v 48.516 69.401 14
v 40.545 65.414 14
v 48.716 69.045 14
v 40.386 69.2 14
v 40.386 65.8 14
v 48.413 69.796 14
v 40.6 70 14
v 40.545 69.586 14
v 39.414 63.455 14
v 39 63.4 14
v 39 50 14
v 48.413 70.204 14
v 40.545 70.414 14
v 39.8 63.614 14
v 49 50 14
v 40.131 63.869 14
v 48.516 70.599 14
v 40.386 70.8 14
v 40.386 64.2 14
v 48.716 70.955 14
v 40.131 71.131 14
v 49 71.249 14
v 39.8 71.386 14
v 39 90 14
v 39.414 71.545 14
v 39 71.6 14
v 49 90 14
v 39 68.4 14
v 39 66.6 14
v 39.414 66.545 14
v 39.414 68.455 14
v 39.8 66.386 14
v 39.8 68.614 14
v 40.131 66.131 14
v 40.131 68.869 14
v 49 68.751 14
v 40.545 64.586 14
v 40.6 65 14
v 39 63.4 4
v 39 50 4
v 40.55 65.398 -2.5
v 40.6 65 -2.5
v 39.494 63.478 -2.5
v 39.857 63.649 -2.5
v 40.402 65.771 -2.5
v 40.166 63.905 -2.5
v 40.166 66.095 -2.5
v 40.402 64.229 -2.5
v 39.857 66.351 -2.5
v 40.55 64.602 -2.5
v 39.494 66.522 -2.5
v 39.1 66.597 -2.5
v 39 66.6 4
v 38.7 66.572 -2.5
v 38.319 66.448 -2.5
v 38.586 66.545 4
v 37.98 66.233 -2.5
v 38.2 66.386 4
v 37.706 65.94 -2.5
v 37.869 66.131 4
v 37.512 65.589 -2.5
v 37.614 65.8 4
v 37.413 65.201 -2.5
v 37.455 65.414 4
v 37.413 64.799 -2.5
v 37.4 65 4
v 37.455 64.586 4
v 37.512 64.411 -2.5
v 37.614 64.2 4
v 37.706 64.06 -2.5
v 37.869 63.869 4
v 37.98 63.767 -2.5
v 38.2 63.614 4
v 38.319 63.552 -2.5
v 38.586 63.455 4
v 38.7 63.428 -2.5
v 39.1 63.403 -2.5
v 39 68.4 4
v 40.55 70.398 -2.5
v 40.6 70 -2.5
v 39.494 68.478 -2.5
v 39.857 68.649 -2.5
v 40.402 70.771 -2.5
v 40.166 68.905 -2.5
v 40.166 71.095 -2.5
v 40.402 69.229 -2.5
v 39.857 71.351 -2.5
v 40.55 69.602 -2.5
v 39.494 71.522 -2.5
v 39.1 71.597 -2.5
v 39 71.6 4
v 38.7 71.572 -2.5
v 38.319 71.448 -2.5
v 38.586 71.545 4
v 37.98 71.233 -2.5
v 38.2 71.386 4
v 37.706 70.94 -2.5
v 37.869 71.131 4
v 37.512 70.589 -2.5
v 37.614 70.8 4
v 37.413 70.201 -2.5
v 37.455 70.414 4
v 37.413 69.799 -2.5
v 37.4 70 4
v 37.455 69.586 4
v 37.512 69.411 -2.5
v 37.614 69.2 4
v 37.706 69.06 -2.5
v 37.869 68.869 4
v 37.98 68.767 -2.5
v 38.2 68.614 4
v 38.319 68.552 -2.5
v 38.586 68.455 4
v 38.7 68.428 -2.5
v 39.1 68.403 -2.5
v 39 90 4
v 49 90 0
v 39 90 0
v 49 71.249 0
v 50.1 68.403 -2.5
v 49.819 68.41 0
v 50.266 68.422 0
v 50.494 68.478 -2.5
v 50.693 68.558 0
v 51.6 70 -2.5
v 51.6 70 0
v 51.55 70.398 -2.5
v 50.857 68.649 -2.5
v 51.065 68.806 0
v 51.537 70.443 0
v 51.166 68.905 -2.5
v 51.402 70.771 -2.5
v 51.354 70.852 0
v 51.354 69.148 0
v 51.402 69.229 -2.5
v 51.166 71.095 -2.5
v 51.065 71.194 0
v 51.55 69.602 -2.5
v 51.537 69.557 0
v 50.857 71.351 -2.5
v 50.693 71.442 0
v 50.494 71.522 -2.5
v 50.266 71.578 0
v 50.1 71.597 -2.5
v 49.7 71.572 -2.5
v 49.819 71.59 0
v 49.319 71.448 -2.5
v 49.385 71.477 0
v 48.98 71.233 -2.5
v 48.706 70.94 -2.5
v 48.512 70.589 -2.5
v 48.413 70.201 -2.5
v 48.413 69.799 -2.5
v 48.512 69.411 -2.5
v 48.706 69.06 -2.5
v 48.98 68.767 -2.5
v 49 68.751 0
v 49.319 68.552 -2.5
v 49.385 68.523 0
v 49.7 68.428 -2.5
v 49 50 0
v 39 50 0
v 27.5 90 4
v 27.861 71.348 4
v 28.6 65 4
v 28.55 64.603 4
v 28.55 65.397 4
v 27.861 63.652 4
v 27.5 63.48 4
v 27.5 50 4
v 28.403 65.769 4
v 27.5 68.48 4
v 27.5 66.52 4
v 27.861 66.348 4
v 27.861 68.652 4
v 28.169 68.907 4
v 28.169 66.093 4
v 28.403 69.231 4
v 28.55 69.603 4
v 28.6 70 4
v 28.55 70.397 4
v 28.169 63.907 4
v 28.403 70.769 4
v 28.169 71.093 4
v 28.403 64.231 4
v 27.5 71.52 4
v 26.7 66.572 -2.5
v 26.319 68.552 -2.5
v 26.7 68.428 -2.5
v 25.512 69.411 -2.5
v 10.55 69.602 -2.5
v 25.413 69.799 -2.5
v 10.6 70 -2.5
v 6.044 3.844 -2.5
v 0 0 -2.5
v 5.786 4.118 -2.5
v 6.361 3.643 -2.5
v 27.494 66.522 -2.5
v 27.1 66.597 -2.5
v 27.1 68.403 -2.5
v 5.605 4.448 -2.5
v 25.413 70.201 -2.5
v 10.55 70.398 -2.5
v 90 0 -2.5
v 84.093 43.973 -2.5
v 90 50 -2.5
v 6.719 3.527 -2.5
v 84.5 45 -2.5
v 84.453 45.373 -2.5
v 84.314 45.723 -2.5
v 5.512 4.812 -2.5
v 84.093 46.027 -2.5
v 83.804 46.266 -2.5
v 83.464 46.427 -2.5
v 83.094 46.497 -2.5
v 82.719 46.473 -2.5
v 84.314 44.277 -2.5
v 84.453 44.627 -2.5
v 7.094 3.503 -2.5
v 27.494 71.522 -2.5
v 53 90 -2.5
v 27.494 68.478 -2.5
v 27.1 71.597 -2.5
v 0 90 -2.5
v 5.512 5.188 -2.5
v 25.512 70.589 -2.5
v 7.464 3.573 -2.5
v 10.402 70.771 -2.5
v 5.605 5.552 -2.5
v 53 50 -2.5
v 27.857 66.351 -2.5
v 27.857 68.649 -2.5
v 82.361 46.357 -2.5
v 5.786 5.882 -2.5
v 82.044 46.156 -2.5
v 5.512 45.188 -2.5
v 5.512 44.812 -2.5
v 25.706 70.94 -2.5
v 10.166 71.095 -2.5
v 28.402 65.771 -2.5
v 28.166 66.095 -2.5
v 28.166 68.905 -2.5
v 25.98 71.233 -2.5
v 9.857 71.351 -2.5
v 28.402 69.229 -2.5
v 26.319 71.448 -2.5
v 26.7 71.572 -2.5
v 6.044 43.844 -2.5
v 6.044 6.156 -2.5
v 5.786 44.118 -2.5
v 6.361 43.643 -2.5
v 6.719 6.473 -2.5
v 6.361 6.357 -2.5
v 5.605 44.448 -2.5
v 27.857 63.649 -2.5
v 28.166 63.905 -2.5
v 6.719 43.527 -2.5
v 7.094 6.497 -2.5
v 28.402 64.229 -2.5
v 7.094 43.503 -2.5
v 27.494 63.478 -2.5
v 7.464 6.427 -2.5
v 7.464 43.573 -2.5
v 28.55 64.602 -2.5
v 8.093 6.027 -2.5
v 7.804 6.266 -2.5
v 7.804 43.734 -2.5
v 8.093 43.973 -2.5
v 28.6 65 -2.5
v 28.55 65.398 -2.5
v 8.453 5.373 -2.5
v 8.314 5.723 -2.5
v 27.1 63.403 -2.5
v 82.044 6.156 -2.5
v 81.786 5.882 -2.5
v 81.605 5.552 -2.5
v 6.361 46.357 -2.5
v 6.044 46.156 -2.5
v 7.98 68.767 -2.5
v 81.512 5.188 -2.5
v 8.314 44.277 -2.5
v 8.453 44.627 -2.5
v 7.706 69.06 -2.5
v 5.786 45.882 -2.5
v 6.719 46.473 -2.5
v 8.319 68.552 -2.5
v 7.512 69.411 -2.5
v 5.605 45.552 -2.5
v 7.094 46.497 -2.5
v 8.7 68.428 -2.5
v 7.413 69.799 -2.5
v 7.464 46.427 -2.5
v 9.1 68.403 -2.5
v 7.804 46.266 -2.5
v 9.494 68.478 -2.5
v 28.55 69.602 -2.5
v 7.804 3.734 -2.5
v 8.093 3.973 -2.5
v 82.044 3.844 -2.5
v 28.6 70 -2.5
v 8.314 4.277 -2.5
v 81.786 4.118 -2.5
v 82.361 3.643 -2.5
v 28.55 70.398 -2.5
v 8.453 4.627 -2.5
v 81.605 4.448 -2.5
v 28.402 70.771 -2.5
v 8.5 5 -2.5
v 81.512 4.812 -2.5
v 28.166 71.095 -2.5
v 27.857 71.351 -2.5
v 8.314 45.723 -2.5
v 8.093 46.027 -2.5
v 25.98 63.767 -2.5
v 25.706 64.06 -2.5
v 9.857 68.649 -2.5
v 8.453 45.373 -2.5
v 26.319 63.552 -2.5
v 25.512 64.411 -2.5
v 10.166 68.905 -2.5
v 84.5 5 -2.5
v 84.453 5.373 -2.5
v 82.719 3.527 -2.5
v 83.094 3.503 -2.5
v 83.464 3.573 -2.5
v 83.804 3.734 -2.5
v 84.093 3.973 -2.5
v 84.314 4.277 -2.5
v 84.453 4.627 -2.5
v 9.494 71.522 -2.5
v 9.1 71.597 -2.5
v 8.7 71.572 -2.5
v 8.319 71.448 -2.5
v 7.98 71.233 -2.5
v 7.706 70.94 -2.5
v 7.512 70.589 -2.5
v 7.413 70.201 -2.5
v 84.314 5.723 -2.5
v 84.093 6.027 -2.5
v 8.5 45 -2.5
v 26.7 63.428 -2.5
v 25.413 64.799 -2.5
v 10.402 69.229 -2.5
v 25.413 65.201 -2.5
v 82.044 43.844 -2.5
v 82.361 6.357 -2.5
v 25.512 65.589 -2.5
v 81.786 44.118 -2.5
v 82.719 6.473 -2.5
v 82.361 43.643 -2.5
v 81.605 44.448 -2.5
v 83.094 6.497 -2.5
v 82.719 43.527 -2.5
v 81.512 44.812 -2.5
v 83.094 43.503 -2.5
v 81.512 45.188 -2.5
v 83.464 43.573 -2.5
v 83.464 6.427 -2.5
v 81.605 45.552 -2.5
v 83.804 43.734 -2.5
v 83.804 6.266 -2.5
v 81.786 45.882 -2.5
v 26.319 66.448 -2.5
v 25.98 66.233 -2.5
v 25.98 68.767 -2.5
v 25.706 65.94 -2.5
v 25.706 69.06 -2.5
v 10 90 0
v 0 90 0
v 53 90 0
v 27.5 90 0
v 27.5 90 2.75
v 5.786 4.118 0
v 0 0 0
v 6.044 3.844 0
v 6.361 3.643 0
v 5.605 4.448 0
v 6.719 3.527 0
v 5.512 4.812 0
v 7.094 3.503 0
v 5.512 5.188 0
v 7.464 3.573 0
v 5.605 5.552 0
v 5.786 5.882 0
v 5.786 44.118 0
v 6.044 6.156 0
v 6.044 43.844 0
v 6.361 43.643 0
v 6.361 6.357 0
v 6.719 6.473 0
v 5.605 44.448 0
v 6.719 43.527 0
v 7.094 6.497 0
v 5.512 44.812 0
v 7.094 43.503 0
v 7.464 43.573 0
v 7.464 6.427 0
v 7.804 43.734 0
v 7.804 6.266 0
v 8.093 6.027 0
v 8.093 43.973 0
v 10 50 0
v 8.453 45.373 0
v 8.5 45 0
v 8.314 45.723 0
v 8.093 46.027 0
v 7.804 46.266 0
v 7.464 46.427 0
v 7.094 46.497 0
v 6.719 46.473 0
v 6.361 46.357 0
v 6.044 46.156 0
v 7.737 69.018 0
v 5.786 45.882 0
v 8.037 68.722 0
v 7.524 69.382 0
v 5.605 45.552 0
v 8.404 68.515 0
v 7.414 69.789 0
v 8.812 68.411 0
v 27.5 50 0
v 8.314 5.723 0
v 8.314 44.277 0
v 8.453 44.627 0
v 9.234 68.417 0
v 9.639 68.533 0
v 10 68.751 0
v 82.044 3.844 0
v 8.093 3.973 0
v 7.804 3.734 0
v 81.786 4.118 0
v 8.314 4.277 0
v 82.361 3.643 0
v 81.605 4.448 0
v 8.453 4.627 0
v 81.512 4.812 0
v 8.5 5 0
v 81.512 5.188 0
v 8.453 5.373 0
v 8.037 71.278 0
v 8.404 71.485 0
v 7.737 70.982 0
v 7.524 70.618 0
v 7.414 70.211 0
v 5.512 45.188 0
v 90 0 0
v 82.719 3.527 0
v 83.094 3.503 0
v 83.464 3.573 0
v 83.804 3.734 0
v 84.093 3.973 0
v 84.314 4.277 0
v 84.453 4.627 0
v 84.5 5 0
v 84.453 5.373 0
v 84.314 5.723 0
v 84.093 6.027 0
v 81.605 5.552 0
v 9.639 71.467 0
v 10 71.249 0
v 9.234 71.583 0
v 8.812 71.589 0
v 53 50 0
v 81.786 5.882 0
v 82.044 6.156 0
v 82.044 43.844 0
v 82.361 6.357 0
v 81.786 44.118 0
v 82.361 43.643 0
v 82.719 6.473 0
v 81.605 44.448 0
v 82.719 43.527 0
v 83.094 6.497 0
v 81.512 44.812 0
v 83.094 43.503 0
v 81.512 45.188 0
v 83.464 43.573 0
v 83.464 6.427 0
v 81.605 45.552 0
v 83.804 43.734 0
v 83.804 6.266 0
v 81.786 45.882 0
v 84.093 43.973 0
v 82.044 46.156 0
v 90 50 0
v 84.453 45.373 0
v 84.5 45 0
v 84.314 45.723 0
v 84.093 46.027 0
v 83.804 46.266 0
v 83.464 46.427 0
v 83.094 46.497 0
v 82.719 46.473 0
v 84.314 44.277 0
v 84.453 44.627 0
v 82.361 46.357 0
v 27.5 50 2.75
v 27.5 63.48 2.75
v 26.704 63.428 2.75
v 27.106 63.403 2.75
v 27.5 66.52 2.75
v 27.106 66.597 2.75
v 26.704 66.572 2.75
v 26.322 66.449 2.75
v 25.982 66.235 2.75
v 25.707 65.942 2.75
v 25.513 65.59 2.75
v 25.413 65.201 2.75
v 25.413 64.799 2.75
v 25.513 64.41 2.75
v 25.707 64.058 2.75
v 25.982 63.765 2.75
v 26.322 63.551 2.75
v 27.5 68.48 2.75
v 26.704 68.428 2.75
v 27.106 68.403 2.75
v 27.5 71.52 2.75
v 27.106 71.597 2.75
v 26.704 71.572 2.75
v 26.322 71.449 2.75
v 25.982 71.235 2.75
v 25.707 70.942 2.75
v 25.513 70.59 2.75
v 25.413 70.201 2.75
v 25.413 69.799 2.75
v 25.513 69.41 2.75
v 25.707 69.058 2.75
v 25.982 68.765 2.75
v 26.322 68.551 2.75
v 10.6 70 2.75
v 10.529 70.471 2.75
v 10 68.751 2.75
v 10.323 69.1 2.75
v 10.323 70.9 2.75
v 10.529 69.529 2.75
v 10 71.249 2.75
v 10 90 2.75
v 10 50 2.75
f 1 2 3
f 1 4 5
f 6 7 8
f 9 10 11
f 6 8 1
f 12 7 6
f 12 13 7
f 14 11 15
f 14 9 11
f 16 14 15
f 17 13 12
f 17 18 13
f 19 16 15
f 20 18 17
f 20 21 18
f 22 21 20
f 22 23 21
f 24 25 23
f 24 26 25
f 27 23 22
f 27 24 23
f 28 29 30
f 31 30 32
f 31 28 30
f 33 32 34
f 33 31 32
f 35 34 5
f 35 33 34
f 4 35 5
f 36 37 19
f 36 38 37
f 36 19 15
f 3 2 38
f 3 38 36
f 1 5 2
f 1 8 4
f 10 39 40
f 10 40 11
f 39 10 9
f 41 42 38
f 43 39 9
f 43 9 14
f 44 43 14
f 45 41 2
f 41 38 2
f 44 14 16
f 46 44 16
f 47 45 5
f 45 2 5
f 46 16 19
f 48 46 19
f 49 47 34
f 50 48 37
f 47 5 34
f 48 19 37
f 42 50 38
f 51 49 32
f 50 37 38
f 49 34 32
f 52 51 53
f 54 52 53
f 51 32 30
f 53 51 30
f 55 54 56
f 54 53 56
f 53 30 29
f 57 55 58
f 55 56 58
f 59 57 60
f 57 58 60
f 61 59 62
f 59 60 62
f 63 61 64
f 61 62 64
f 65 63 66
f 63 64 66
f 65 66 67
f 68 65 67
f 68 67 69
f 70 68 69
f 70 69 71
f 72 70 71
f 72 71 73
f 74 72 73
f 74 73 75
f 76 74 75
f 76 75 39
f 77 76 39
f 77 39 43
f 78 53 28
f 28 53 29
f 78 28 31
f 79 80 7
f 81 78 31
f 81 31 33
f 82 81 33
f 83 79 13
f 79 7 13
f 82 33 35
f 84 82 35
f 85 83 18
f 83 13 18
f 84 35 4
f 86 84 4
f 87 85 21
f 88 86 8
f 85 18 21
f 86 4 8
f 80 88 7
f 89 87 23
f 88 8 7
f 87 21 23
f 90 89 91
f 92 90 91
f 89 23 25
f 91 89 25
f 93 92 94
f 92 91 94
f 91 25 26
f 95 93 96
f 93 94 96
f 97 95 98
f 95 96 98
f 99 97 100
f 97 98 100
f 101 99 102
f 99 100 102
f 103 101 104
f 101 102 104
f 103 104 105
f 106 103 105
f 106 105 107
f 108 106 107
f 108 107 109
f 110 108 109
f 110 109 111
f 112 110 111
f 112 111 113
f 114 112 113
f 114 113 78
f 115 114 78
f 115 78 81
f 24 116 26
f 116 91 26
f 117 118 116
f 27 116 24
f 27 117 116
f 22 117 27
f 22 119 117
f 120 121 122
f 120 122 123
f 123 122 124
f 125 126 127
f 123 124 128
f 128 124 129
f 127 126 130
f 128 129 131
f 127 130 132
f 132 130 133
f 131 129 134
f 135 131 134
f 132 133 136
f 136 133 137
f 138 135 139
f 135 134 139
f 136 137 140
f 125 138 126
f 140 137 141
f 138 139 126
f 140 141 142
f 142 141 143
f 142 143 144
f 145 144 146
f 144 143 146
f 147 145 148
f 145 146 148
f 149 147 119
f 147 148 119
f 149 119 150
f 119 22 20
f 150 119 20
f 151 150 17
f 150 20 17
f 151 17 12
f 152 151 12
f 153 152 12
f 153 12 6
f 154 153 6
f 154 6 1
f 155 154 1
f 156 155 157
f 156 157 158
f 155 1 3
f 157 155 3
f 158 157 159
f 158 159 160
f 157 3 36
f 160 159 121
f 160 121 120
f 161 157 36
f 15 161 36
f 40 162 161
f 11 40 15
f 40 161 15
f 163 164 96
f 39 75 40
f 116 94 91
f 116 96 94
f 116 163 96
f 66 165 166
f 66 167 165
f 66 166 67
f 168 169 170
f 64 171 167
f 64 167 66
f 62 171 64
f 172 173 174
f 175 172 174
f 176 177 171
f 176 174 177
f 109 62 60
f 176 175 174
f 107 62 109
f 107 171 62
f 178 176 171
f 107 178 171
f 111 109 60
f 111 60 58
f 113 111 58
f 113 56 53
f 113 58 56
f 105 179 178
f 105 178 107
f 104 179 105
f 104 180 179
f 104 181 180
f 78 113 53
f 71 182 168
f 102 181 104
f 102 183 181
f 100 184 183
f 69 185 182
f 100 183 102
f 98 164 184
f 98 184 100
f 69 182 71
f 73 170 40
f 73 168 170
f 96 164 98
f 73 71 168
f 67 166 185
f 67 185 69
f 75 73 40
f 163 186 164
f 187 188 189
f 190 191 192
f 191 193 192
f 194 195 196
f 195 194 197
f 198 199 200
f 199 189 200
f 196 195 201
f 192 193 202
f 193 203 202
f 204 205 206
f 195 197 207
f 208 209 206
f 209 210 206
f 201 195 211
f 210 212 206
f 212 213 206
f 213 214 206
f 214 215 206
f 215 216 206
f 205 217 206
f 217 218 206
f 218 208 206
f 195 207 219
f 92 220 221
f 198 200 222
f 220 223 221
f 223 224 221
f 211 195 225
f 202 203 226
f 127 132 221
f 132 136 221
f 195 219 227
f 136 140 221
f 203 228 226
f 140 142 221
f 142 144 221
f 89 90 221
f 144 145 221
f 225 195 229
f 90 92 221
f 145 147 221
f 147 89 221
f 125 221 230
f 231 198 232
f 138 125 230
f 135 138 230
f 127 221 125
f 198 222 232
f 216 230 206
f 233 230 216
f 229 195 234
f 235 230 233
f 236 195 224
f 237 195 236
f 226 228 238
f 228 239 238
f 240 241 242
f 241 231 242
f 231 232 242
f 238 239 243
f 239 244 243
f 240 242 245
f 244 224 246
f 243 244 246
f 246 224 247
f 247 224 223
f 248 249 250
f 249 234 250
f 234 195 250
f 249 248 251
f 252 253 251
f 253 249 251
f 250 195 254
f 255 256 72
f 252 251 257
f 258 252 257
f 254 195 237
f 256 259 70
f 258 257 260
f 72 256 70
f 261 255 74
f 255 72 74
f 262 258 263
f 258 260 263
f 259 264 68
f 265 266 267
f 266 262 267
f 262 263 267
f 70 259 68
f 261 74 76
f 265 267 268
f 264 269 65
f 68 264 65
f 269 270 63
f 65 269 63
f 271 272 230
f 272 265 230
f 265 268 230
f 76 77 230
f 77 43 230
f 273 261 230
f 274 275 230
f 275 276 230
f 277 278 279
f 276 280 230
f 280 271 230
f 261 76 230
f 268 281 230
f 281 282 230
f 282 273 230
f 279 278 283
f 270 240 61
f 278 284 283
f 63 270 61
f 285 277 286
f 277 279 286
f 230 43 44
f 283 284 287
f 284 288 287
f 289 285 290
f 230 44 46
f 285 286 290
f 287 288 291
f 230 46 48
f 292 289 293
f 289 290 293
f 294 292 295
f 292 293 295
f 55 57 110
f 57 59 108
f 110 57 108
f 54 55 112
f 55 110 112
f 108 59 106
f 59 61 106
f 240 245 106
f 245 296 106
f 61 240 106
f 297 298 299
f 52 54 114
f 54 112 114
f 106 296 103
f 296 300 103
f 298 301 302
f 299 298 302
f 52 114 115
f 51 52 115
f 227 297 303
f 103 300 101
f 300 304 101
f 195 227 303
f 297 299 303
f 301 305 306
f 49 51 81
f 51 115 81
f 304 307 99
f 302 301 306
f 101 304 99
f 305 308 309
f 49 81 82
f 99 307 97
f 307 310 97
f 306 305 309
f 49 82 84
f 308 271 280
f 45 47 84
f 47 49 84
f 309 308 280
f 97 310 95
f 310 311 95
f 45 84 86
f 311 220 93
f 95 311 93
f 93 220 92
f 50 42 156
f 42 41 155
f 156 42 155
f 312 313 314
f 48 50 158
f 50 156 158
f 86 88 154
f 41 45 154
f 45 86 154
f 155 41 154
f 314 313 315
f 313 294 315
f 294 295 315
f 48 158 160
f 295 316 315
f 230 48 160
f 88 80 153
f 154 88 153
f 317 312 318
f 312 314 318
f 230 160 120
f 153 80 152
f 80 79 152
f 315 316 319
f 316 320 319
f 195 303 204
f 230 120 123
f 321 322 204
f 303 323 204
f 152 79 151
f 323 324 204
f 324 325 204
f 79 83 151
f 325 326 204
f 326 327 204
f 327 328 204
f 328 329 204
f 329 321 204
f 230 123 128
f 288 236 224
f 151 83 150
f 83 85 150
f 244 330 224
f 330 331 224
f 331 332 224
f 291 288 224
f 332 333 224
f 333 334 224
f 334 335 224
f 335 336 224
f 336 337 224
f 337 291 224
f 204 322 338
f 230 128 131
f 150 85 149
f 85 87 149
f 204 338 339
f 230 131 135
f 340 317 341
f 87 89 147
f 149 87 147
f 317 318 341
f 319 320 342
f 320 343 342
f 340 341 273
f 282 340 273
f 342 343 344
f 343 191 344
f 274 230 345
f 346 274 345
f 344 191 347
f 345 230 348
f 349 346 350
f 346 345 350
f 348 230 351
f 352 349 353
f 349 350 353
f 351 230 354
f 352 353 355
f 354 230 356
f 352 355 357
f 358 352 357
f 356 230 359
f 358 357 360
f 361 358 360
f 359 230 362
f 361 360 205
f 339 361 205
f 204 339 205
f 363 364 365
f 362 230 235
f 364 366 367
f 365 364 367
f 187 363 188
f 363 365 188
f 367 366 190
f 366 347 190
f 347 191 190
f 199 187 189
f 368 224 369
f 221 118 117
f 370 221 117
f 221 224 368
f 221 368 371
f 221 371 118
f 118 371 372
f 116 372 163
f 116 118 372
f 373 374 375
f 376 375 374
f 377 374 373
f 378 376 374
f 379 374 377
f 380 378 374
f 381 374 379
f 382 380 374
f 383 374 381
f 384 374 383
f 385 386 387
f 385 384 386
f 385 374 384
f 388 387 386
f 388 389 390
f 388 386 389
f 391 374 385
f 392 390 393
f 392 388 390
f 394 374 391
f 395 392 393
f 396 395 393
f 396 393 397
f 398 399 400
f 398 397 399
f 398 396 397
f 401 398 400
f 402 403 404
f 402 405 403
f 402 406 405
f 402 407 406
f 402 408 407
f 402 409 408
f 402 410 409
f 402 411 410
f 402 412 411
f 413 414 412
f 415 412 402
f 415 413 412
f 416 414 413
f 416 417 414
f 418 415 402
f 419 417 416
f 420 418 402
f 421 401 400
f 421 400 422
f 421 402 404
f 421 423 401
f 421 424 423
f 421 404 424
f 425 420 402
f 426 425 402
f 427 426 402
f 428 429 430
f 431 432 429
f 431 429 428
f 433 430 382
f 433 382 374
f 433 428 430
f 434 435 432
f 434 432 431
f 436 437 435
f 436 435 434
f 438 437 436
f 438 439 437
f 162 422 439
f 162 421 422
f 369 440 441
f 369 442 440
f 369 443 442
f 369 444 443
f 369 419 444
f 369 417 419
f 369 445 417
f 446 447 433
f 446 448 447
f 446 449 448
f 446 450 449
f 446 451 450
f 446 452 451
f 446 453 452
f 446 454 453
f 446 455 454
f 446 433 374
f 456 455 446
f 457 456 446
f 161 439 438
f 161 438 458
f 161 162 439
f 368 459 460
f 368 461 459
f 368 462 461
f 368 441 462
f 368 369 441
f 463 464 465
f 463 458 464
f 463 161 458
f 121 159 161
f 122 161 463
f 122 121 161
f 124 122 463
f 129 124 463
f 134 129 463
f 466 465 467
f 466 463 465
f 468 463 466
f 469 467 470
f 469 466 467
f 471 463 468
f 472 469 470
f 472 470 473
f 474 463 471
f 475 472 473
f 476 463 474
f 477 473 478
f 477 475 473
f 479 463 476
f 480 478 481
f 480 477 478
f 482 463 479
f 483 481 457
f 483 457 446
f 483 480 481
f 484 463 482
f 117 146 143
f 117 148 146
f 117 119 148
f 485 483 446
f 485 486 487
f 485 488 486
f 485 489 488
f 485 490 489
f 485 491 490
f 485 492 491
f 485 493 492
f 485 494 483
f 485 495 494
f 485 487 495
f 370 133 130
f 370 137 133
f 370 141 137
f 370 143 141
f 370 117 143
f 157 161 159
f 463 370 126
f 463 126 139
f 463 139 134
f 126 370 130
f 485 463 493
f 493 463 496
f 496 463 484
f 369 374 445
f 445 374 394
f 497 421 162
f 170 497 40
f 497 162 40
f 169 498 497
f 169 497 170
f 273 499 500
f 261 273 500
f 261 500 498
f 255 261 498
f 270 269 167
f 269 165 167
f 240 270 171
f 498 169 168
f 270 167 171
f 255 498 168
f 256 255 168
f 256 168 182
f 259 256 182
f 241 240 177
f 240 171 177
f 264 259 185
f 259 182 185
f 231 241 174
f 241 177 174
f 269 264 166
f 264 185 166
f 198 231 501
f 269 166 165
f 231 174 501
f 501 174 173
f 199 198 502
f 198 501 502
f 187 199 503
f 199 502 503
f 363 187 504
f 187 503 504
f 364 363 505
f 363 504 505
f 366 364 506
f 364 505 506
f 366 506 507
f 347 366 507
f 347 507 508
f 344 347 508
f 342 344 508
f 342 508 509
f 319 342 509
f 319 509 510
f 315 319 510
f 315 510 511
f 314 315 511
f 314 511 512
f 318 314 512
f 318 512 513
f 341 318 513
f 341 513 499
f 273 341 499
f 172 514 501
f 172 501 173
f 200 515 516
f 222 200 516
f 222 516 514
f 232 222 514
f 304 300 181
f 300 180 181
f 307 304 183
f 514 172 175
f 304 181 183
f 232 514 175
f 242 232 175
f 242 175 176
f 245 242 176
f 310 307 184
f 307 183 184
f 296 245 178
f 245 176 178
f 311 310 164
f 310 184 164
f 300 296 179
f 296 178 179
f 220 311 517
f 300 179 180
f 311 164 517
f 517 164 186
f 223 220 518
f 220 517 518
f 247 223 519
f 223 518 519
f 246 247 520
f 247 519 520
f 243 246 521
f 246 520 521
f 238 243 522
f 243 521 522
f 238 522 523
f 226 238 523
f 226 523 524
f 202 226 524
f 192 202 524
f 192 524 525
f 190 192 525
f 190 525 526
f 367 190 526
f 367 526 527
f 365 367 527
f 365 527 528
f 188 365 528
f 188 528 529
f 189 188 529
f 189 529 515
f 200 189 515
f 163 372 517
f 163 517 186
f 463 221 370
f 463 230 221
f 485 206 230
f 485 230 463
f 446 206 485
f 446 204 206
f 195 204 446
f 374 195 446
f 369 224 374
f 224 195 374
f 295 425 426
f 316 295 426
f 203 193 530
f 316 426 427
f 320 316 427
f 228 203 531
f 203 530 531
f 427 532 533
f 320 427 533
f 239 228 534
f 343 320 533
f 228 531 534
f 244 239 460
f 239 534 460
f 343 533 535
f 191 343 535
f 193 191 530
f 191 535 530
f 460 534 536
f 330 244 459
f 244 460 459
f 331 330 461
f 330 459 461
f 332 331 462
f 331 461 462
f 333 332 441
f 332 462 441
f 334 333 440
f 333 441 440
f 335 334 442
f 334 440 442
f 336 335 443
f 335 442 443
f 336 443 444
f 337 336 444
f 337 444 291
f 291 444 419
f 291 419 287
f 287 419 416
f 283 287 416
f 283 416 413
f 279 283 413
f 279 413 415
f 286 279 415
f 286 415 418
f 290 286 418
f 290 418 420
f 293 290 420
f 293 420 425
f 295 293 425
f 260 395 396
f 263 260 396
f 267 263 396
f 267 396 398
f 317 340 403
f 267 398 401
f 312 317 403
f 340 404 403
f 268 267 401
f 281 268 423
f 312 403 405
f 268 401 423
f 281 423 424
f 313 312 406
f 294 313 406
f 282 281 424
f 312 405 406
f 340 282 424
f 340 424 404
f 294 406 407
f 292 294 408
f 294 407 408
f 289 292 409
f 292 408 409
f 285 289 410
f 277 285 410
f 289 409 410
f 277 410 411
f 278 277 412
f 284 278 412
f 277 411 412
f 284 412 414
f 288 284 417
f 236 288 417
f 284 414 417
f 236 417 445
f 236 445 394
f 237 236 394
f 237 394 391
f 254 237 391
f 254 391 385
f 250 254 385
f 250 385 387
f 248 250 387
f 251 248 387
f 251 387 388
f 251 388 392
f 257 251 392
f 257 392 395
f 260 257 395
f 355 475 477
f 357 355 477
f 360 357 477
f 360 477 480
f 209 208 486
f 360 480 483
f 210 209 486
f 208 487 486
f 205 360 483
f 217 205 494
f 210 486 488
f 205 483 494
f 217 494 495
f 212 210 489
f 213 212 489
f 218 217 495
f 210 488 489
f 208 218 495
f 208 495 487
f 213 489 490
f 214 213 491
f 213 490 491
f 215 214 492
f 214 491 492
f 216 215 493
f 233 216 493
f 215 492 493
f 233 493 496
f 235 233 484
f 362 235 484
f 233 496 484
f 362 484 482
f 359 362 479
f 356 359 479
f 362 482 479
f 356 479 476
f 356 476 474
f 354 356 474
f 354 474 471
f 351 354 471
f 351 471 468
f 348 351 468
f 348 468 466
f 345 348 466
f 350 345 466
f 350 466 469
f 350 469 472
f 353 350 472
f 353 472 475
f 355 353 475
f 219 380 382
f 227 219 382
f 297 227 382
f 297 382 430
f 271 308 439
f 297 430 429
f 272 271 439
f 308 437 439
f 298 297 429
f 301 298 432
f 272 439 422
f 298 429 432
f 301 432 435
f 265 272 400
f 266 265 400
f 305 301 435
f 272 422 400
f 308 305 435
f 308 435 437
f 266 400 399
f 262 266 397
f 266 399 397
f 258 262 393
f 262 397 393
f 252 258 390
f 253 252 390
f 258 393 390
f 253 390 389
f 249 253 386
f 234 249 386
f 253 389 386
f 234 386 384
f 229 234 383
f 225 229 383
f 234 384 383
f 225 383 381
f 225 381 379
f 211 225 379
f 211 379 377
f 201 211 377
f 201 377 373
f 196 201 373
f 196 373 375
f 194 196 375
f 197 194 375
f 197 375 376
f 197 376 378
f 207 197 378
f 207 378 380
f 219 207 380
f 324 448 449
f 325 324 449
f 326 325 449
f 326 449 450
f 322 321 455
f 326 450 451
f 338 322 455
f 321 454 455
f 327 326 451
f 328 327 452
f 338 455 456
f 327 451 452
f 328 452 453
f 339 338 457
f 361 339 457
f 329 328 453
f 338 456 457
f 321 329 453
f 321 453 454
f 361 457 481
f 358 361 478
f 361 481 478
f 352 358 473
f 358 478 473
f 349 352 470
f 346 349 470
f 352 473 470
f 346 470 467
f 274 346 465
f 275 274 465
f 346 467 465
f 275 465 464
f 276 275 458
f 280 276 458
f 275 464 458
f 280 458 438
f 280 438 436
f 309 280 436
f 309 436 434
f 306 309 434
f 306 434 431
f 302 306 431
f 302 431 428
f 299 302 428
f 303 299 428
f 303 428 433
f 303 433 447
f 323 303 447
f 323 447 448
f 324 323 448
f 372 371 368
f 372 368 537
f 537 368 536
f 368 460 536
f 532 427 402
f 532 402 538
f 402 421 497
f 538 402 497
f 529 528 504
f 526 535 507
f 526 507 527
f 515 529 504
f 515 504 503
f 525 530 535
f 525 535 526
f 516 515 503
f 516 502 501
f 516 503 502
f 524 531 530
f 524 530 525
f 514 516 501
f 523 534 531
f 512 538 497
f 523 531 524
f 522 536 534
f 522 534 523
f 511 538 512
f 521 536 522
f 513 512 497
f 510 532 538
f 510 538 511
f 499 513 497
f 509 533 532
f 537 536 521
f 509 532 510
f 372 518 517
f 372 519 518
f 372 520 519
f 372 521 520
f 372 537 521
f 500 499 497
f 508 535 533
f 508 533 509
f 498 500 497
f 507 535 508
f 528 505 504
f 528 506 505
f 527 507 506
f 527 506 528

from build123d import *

# Parameters (mm, degrees)
BOX004_W          = 40
BOX004_H          = 40
BOX004_DEPTH      = 10
CYLINDER009_R     = 1.6
CYLINDER009_DEPTH = 20
CYLINDER008_R     = 1.6
CYLINDER008_DEPTH = 20
CYLINDER007_R     = 1.6
CYLINDER007_DEPTH = 20
CYLINDER006_R     = 1.6
CYLINDER006_DEPTH = 10
CYLINDER005_R     = 1.6
CYLINDER005_DEPTH = 10
CYLINDER004_R     = 1.6
CYLINDER004_DEPTH = 10
BOX003_W          = 10
BOX003_H          = 40
BOX003_DEPTH      = 14
BOX002_W          = 11.5
BOX002_H          = 40
BOX002_DEPTH      = 4
BOX001_W          = 17.5
BOX001_H          = 40
BOX001_DEPTH      = 2.75
CYLINDER003_R     = 1.5
CYLINDER003_DEPTH = 10
CYLINDER002_R     = 1.5
CYLINDER002_DEPTH = 10
CYLINDER001_R     = 1.5
CYLINDER001_DEPTH = 10
CYLINDER_R        = 1.5
CYLINDER_DEPTH    = 10
BOX_W             = 90
BOX_H             = 90
BOX_DEPTH         = 2.5


with BuildPart() as cube004:
    # Box004 → Box004 (new body)
    with BuildSketch(Plane(origin=(53, 50, -5), x_dir=(1, 0, 0), z_dir=(0, 0, 1))):
        with Locations((20, 20)):
            Rectangle(BOX004_W, BOX004_H)
    extrude(amount=BOX004_DEPTH)


with BuildPart() as cylinder009:
    # Cylinder009 → Cylinder009 (new body)
    with BuildSketch(Plane(origin=(50, 70, -5), x_dir=(1, 0, 0), z_dir=(0, 0, 1))):
        Circle(CYLINDER009_R)
    extrude(amount=CYLINDER009_DEPTH)


with BuildPart() as cylinder008:
    # Cylinder008 → Cylinder008 (new body)
    with BuildSketch(Plane(origin=(39, 70, -5), x_dir=(1, 0, 0), z_dir=(0, 0, 1))):
        Circle(CYLINDER008_R)
    extrude(amount=CYLINDER008_DEPTH)


with BuildPart() as cylinder007:
    # Cylinder007 → Cylinder007 (new body)
    with BuildSketch(Plane(origin=(39, 65, -5), x_dir=(1, 0, 0), z_dir=(0, 0, 1))):
        Circle(CYLINDER007_R)
    extrude(amount=CYLINDER007_DEPTH)


with BuildPart() as cylinder006:
    # Cylinder006 → Cylinder006 (new body)
    with BuildSketch(Plane(origin=(27, 65, -5), x_dir=(1, 0, 0), z_dir=(0, 0, 1))):
        Circle(CYLINDER006_R)
    extrude(amount=CYLINDER006_DEPTH)


with BuildPart() as cylinder005:
    # Cylinder005 → Cylinder005 (new body)
    with BuildSketch(Plane(origin=(27, 70, -5), x_dir=(1, 0, 0), z_dir=(0, 0, 1))):
        Circle(CYLINDER005_R)
    extrude(amount=CYLINDER005_DEPTH)


with BuildPart() as cylinder004:
    # Cylinder004 → Cylinder004 (new body)
    with BuildSketch(Plane(origin=(9, 70, -5), x_dir=(1, 0, 0), z_dir=(0, 0, 1))):
        Circle(CYLINDER004_R)
    extrude(amount=CYLINDER004_DEPTH)


with BuildPart() as cube003:
    # Box003 → Box003 (new body)
    with BuildSketch(Plane(origin=(39, 50, 0), x_dir=(1, 0, 0), z_dir=(0, 0, 1))):
        with Locations((5, 20)):
            Rectangle(BOX003_W, BOX003_H)
    extrude(amount=BOX003_DEPTH)


with BuildPart() as cube002:
    # Box002 → Box002 (new body)
    with BuildSketch(Plane(origin=(27.5, 50, 0), x_dir=(1, 0, 0), z_dir=(0, 0, 1))):
        with Locations((5.75, 20)):
            Rectangle(BOX002_W, BOX002_H)
    extrude(amount=BOX002_DEPTH)


with BuildPart() as cube001:
    # Box001 → Box001 (new body)
    with BuildSketch(Plane(origin=(10, 50, 0), x_dir=(1, 0, 0), z_dir=(0, 0, 1))):
        with Locations((8.75, 20)):
            Rectangle(BOX001_W, BOX001_H)
    extrude(amount=BOX001_DEPTH)


with BuildPart() as cylinder003:
    # Cylinder003 → Cylinder003 (new body)
    with BuildSketch(Plane(origin=(83, 45, -5), x_dir=(1, 0, 0), z_dir=(0, 0, 1))):
        Circle(CYLINDER003_R)
    extrude(amount=CYLINDER003_DEPTH)


with BuildPart() as cylinder002:
    # Cylinder002 → Cylinder002 (new body)
    with BuildSketch(Plane(origin=(83, 5, -5), x_dir=(1, 0, 0), z_dir=(0, 0, 1))):
        Circle(CYLINDER002_R)
    extrude(amount=CYLINDER002_DEPTH)


with BuildPart() as cylinder001:
    # Cylinder001 → Cylinder001 (new body)
    with BuildSketch(Plane(origin=(7, 45, -5), x_dir=(1, 0, 0), z_dir=(0, 0, 1))):
        Circle(CYLINDER001_R)
    extrude(amount=CYLINDER001_DEPTH)


with BuildPart() as cylinder:
    # Cylinder → Cylinder (new body)
    with BuildSketch(Plane(origin=(7, 5, -5), x_dir=(1, 0, 0), z_dir=(0, 0, 1))):
        Circle(CYLINDER_R)
    extrude(amount=CYLINDER_DEPTH)


with BuildPart() as cut010:
    # Box → Box (new body)
    with BuildSketch(Plane.XY.offset(-2.5)):
        with Locations((45, 45)):
            Rectangle(BOX_W, BOX_H)
    extrude(amount=BOX_DEPTH)

    # Cut: cut Cylinder
    add(cylinder.part, mode=Mode.SUBTRACT)

    # Cut001: cut Cylinder001
    add(cylinder001.part, mode=Mode.SUBTRACT)

    # Cut002: cut Cylinder002
    add(cylinder002.part, mode=Mode.SUBTRACT)

    # Cut003: cut Cylinder003
    add(cylinder003.part, mode=Mode.SUBTRACT)

    # Fusion: union Cube001
    add(cube001.part)

    # Fusion001: union Cube002
    add(cube002.part)

    # Fusion002: union Cube003
    add(cube003.part)

    # Cut004: cut Cylinder004
    add(cylinder004.part, mode=Mode.SUBTRACT)

    # Cut005: cut Cylinder005
    add(cylinder005.part, mode=Mode.SUBTRACT)

    # Cut006: cut Cylinder006
    add(cylinder006.part, mode=Mode.SUBTRACT)

    # Cut007: cut Cylinder007
    add(cylinder007.part, mode=Mode.SUBTRACT)

    # Cut008: cut Cylinder008
    add(cylinder008.part, mode=Mode.SUBTRACT)

    # Cut009: cut Cylinder009
    add(cylinder009.part, mode=Mode.SUBTRACT)

    # Cut010: cut Cube004
    add(cube004.part, mode=Mode.SUBTRACT)


solid = cut010.part
